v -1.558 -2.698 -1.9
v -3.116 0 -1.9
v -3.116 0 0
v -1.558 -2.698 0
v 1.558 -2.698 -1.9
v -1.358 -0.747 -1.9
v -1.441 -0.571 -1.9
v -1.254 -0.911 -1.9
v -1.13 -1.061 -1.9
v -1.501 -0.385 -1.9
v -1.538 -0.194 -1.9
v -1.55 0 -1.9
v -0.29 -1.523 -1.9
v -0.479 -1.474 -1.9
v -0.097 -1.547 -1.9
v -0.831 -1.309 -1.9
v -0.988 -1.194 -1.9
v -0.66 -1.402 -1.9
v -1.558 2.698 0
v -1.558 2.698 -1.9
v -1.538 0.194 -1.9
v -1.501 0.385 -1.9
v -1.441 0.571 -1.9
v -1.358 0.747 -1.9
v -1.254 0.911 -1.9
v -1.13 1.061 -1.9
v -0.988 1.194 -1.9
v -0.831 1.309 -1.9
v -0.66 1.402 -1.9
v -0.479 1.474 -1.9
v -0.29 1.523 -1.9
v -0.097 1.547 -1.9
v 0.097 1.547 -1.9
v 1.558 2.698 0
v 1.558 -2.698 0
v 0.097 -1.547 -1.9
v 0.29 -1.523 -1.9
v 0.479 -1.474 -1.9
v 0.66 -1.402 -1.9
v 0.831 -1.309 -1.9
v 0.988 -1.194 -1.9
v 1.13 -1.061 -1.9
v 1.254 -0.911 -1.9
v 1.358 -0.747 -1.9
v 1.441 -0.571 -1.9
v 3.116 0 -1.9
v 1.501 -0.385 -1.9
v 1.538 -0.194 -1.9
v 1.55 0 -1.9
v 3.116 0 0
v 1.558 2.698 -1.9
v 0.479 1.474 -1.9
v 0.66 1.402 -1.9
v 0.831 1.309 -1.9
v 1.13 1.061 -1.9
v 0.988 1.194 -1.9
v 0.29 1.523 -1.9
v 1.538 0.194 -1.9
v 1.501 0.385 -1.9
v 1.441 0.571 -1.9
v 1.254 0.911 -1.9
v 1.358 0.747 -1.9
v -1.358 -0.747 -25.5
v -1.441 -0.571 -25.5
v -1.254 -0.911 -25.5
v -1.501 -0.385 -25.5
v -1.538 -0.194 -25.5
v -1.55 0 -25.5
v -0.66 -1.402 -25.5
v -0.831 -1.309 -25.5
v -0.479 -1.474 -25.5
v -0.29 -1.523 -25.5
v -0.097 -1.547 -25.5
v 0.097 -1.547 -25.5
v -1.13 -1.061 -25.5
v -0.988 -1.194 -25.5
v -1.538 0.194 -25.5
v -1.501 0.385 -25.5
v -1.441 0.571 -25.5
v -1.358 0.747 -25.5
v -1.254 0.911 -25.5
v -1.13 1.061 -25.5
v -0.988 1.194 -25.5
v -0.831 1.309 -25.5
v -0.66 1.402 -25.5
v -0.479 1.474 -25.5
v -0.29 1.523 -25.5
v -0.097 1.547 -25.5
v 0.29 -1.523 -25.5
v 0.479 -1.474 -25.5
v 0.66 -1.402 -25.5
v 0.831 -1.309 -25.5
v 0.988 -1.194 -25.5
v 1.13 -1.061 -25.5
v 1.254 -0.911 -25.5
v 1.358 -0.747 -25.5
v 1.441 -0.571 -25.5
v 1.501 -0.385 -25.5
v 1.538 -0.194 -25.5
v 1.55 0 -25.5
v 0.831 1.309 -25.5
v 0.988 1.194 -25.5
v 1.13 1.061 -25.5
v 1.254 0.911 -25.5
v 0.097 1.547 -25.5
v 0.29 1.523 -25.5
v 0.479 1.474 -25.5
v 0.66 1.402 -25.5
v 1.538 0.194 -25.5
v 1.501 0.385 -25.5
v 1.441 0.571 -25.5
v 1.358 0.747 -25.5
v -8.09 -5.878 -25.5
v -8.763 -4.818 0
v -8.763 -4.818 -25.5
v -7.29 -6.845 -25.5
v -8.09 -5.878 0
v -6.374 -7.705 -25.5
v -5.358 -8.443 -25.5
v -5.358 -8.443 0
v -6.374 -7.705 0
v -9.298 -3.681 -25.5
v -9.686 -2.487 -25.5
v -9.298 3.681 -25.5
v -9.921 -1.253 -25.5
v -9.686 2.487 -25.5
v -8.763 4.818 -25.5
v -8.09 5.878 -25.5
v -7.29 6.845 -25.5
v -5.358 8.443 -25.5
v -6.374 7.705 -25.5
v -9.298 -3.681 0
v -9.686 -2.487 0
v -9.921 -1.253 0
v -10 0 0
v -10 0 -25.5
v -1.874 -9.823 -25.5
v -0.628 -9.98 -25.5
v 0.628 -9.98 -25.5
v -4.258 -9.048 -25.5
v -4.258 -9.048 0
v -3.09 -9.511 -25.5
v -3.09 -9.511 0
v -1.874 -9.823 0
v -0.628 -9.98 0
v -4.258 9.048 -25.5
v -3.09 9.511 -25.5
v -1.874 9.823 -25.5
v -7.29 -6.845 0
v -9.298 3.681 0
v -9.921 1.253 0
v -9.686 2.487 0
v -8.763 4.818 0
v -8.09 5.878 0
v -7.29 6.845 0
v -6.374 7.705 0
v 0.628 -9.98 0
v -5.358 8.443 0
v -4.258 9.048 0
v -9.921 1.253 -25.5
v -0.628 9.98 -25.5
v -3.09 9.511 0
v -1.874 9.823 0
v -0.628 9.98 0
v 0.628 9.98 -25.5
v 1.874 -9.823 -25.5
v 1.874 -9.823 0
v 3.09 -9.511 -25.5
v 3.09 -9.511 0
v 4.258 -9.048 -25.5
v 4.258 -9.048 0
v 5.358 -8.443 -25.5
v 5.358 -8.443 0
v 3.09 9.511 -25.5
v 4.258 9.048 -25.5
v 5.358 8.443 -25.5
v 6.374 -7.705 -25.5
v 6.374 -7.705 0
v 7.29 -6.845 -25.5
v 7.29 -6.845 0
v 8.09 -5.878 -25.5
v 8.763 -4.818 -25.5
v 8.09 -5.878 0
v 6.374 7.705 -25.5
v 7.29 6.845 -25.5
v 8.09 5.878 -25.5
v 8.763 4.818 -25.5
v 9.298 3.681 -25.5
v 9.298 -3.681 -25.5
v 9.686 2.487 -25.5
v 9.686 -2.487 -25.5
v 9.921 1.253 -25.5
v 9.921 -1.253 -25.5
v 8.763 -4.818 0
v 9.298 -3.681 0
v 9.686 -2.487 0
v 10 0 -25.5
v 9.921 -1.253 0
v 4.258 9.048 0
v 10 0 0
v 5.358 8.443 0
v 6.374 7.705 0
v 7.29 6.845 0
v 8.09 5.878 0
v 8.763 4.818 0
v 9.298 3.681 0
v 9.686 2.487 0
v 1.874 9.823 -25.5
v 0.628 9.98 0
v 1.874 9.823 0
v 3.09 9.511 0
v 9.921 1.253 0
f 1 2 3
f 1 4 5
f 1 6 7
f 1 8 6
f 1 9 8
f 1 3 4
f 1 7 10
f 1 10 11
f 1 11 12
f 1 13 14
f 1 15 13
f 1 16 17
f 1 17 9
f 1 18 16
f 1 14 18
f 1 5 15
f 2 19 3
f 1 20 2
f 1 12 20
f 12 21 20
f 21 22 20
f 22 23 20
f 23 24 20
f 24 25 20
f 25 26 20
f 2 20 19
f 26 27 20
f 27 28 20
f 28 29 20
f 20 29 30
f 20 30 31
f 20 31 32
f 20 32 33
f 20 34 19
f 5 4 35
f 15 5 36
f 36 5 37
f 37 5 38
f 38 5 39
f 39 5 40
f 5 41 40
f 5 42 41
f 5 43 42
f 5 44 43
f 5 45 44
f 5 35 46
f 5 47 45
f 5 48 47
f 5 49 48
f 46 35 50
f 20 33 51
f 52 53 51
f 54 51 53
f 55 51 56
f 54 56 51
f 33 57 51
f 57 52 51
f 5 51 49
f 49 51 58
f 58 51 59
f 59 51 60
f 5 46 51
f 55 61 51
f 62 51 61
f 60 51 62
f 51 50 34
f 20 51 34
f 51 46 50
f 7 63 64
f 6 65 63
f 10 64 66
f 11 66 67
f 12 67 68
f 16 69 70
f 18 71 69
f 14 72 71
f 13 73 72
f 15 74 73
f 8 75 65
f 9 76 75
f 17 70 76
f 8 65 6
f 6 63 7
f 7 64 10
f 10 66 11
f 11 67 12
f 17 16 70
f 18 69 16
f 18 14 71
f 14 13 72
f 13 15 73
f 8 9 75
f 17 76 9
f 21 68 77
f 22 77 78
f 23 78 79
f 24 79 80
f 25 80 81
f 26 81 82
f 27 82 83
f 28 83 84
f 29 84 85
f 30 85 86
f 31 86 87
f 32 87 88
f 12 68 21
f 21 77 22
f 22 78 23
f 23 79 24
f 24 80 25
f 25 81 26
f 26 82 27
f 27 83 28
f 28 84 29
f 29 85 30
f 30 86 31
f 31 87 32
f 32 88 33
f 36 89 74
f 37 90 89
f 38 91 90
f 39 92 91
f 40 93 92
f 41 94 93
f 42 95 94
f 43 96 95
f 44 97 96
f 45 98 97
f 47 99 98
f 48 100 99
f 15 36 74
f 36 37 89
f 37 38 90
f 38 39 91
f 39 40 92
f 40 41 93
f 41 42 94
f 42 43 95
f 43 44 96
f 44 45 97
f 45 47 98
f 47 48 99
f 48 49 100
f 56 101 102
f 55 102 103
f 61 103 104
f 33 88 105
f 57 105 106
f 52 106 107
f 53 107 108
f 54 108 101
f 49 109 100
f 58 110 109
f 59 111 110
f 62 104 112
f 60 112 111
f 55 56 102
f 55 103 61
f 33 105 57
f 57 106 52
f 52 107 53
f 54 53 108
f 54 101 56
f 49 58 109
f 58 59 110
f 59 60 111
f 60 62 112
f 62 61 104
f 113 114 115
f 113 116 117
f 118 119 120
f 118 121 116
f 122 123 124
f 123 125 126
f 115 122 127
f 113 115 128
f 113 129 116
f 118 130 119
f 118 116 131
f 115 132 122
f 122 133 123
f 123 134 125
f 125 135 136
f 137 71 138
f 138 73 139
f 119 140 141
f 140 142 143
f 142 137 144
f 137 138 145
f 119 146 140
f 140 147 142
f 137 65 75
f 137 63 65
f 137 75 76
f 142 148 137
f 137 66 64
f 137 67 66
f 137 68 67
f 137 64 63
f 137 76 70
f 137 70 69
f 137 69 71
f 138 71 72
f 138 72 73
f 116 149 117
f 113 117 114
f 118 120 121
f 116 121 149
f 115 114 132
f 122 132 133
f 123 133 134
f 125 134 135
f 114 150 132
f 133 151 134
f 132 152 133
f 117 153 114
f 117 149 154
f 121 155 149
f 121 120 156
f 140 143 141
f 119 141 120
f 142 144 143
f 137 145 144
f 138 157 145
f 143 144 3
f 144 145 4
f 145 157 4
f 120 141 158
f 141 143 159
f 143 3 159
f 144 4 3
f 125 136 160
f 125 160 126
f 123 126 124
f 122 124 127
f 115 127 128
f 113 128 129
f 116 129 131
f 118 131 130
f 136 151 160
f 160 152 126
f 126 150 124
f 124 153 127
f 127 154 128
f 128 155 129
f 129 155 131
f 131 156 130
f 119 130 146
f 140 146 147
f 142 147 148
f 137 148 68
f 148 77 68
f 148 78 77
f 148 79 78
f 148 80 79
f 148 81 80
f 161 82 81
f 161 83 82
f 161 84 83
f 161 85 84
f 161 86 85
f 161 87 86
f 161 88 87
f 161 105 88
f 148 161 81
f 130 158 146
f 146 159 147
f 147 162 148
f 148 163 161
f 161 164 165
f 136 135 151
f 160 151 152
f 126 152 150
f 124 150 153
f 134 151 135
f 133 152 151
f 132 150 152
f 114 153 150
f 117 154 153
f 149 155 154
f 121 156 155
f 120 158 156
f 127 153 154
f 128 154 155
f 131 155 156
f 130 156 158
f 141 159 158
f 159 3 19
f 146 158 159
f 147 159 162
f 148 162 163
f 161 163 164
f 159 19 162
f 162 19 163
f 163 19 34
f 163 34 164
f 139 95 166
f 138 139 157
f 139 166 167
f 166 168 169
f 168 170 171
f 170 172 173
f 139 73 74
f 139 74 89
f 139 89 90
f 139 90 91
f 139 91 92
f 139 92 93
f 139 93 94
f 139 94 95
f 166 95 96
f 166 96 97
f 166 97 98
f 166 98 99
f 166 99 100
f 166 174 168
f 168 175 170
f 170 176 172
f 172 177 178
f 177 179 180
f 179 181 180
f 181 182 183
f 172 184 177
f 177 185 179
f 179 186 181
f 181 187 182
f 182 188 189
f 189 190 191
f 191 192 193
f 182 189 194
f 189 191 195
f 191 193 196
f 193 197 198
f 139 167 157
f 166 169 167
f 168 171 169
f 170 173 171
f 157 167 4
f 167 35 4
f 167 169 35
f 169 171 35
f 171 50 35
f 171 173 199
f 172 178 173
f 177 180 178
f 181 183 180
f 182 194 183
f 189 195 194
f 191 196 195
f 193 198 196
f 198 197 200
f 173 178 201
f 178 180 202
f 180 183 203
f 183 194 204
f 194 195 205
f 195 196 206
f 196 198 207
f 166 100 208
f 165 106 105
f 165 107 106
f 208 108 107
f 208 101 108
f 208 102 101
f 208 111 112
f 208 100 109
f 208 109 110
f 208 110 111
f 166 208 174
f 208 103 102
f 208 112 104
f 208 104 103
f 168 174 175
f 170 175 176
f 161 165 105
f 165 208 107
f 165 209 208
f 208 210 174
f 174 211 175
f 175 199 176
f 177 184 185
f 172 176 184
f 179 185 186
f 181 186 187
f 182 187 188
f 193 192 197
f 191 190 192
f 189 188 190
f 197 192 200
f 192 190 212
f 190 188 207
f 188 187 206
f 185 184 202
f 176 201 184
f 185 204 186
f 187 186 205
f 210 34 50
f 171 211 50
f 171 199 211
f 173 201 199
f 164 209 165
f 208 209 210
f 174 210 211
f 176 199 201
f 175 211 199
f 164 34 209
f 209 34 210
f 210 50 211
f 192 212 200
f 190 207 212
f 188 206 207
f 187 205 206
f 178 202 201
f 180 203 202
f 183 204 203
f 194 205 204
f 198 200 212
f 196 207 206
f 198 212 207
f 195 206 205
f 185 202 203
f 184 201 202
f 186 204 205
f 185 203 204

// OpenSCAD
$fn = 50;

difference() {
	union() {
		translate(v = [0, 0, -25.5]) {
			cylinder(h = 25.5, r = 10.0);
		}
	}
	union() {
		translate(v = [0, 0, 0]) {
			rotate(a = [0, 0, 0]) {
				difference() {
					union() {
						translate(v = [0, 0, -1.9]) {
							linear_extrude(height = 1.9) {
								polygon(points = [[3.1158, 0.0], [1.5579000000000005, 2.698361953111554], [-1.5578999999999994, 2.6983619531115544], [-3.1158, 3.815754496783323e-16], [-1.5579000000000014, -2.6983619531115535], [1.557899999999998, -2.6983619531115552]]);
							}
						}
					}
					union();
				}
			}
		}
		#translate(v = [0, 0, -100.0]) {
			cylinder(h = 200, r = 1.55);
		}
	}
}
